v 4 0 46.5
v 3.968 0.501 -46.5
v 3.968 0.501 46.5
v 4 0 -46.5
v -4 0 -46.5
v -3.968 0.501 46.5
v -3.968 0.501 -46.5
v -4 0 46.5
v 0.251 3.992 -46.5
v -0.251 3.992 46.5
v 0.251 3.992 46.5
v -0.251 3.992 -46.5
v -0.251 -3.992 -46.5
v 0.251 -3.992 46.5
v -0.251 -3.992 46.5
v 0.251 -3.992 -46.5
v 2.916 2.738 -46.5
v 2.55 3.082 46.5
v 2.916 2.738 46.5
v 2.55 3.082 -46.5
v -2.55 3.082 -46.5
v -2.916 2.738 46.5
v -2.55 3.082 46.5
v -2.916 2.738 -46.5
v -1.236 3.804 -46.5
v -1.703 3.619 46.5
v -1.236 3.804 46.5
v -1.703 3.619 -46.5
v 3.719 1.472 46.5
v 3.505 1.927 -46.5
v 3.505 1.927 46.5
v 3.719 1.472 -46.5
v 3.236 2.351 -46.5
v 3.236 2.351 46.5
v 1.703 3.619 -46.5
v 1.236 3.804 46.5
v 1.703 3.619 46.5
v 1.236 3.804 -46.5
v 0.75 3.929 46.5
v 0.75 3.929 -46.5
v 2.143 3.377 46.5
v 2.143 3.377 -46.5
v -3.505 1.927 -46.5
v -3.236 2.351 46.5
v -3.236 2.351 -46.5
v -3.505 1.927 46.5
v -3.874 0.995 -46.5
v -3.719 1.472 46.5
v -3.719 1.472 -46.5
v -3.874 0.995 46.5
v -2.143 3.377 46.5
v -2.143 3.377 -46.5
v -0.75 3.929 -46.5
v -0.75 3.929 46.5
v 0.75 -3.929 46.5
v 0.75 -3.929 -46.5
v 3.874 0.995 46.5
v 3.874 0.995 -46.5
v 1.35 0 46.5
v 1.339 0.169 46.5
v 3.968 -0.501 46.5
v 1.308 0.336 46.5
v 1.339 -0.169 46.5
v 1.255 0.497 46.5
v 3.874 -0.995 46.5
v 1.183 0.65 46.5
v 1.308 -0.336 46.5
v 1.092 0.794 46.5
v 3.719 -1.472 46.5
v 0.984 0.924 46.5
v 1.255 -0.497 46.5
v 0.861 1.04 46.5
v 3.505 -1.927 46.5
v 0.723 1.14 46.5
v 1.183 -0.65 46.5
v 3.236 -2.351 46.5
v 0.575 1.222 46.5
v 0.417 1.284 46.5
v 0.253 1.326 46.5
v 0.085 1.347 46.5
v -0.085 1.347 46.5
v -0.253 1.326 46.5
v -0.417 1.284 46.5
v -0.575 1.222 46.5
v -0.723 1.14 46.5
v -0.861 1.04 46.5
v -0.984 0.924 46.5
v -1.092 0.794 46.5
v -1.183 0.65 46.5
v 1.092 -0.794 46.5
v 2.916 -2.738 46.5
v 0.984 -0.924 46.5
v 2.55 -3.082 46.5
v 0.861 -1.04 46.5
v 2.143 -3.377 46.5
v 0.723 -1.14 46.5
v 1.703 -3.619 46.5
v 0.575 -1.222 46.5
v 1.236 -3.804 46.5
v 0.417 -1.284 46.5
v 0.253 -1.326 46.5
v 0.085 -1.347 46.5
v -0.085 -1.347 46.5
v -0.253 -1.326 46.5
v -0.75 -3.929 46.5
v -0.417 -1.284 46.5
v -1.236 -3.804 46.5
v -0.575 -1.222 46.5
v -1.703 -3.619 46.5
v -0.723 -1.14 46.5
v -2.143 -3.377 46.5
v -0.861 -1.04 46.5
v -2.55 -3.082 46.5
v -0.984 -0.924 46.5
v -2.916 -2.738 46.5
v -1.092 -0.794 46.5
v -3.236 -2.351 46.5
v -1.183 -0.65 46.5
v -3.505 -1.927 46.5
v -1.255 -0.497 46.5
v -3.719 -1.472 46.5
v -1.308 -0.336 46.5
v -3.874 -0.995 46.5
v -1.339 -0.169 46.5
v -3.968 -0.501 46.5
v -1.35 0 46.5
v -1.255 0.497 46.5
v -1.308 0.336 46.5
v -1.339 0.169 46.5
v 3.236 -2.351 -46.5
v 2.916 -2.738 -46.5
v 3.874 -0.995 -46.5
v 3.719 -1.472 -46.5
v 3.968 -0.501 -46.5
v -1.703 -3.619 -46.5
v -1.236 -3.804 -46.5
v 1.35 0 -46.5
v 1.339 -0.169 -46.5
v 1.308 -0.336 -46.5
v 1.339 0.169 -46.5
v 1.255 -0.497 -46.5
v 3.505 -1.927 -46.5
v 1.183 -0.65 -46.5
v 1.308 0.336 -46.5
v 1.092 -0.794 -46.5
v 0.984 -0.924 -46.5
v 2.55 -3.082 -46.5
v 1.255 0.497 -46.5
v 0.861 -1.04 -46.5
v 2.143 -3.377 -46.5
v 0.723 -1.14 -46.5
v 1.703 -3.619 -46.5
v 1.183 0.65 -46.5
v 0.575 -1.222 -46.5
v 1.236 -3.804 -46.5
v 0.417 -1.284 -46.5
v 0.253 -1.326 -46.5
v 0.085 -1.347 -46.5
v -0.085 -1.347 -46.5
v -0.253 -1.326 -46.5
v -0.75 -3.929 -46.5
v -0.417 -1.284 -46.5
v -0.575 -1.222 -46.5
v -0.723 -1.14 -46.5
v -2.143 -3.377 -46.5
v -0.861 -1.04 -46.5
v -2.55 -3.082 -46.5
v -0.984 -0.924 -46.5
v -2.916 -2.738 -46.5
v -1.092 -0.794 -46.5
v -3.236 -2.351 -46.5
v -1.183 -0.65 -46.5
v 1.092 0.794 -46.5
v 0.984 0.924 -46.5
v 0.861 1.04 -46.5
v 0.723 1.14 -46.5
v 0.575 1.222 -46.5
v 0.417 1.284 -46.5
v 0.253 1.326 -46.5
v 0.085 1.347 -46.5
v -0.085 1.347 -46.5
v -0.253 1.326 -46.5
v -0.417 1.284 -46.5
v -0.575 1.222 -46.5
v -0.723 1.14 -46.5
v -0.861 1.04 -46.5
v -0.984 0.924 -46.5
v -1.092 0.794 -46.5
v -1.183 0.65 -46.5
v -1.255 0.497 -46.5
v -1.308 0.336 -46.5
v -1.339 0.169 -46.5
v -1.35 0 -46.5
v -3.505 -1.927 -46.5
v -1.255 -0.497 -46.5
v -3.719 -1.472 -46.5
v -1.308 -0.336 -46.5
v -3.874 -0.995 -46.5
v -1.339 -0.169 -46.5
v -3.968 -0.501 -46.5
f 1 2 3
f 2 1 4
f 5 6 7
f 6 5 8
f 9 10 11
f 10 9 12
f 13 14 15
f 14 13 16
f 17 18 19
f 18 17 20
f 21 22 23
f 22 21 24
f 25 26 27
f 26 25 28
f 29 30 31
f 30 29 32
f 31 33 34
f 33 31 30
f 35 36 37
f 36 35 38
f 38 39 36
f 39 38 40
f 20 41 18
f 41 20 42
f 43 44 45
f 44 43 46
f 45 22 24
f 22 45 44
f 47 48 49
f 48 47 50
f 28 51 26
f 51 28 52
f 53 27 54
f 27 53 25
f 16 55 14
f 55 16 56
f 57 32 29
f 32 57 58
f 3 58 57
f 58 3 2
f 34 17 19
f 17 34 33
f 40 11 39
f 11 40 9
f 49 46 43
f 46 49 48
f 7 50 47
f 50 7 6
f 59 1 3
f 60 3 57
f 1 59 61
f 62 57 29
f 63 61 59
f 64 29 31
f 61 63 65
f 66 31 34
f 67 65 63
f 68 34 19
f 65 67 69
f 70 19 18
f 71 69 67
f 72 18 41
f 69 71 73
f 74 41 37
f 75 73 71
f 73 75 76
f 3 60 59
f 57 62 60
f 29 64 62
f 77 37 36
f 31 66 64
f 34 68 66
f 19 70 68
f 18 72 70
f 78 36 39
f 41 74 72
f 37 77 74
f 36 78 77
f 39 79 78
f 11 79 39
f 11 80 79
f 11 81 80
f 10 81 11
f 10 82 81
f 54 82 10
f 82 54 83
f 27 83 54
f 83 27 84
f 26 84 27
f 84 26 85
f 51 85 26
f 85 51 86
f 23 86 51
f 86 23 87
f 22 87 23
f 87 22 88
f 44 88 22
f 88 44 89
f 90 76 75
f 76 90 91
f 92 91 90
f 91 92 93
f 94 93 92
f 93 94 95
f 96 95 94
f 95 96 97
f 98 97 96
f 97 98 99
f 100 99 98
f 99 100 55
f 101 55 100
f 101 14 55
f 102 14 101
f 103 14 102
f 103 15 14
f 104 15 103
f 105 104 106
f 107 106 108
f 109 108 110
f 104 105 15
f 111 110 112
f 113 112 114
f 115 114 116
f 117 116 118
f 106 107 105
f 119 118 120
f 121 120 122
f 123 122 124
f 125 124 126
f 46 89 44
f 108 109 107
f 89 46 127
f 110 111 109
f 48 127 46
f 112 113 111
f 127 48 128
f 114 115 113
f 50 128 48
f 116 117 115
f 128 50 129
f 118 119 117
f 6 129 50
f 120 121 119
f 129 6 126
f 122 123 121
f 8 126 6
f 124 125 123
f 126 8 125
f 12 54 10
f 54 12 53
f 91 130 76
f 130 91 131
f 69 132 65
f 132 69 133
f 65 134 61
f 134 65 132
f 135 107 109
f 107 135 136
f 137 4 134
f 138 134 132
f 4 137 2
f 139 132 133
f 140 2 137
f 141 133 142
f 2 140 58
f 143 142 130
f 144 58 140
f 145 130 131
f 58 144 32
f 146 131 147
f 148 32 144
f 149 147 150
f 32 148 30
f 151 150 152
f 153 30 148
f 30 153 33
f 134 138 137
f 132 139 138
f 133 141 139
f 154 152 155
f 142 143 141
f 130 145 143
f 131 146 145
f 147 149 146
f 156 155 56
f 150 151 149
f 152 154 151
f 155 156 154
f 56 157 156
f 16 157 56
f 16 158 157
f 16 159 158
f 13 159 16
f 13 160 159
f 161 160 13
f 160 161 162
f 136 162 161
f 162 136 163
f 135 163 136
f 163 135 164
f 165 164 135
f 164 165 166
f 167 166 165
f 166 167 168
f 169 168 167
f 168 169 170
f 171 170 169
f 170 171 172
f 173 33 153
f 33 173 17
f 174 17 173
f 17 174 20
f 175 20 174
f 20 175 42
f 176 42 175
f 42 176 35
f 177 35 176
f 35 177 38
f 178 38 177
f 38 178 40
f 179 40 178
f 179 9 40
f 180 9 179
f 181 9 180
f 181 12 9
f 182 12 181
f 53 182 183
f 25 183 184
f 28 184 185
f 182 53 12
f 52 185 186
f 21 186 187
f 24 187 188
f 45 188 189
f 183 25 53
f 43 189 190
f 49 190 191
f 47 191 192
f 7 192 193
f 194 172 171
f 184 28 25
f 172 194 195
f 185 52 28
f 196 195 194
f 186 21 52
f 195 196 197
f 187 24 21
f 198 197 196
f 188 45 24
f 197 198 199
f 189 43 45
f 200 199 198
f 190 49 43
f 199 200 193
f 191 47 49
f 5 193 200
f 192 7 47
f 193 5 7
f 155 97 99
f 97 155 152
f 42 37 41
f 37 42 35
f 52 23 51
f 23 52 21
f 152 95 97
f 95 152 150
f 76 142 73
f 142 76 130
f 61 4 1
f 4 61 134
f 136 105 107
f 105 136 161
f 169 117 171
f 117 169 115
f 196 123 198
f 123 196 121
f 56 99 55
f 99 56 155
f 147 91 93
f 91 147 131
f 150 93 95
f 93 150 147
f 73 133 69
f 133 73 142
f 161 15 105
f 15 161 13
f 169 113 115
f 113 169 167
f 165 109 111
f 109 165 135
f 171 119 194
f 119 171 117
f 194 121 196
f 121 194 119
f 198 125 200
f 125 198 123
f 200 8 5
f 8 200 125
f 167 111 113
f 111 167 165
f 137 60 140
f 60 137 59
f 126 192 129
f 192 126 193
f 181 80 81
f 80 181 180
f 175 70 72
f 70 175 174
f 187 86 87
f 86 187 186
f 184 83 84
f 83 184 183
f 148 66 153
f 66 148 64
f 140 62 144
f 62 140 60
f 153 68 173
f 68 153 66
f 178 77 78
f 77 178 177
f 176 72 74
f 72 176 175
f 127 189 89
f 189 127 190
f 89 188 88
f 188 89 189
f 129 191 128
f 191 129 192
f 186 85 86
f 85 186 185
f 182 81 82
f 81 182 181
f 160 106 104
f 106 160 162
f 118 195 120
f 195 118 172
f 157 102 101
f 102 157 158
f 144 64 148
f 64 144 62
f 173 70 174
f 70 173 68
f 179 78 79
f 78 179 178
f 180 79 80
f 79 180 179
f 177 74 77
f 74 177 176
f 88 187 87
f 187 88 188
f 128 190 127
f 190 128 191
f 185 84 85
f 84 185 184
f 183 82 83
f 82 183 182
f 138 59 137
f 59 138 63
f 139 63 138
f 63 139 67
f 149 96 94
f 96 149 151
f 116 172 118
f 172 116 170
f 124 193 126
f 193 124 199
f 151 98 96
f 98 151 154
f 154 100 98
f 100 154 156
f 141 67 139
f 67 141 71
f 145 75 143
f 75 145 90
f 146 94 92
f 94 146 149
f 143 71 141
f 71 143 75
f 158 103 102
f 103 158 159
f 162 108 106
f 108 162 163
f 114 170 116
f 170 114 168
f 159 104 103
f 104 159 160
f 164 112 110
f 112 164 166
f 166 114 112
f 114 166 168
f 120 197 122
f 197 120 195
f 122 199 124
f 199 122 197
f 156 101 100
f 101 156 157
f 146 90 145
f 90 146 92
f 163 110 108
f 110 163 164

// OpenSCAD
$fn = 50;


difference() {
	union() {
		translate(v = [0, 0, -46.5000000000]) {
			cylinder(h = 93, r = 4.0000000000);
		}
	}
	union() {
		translate(v = [0, 0, -100.0000000000]) {
			cylinder(h = 200, r = 1.3500000000);
		}
	}
}
